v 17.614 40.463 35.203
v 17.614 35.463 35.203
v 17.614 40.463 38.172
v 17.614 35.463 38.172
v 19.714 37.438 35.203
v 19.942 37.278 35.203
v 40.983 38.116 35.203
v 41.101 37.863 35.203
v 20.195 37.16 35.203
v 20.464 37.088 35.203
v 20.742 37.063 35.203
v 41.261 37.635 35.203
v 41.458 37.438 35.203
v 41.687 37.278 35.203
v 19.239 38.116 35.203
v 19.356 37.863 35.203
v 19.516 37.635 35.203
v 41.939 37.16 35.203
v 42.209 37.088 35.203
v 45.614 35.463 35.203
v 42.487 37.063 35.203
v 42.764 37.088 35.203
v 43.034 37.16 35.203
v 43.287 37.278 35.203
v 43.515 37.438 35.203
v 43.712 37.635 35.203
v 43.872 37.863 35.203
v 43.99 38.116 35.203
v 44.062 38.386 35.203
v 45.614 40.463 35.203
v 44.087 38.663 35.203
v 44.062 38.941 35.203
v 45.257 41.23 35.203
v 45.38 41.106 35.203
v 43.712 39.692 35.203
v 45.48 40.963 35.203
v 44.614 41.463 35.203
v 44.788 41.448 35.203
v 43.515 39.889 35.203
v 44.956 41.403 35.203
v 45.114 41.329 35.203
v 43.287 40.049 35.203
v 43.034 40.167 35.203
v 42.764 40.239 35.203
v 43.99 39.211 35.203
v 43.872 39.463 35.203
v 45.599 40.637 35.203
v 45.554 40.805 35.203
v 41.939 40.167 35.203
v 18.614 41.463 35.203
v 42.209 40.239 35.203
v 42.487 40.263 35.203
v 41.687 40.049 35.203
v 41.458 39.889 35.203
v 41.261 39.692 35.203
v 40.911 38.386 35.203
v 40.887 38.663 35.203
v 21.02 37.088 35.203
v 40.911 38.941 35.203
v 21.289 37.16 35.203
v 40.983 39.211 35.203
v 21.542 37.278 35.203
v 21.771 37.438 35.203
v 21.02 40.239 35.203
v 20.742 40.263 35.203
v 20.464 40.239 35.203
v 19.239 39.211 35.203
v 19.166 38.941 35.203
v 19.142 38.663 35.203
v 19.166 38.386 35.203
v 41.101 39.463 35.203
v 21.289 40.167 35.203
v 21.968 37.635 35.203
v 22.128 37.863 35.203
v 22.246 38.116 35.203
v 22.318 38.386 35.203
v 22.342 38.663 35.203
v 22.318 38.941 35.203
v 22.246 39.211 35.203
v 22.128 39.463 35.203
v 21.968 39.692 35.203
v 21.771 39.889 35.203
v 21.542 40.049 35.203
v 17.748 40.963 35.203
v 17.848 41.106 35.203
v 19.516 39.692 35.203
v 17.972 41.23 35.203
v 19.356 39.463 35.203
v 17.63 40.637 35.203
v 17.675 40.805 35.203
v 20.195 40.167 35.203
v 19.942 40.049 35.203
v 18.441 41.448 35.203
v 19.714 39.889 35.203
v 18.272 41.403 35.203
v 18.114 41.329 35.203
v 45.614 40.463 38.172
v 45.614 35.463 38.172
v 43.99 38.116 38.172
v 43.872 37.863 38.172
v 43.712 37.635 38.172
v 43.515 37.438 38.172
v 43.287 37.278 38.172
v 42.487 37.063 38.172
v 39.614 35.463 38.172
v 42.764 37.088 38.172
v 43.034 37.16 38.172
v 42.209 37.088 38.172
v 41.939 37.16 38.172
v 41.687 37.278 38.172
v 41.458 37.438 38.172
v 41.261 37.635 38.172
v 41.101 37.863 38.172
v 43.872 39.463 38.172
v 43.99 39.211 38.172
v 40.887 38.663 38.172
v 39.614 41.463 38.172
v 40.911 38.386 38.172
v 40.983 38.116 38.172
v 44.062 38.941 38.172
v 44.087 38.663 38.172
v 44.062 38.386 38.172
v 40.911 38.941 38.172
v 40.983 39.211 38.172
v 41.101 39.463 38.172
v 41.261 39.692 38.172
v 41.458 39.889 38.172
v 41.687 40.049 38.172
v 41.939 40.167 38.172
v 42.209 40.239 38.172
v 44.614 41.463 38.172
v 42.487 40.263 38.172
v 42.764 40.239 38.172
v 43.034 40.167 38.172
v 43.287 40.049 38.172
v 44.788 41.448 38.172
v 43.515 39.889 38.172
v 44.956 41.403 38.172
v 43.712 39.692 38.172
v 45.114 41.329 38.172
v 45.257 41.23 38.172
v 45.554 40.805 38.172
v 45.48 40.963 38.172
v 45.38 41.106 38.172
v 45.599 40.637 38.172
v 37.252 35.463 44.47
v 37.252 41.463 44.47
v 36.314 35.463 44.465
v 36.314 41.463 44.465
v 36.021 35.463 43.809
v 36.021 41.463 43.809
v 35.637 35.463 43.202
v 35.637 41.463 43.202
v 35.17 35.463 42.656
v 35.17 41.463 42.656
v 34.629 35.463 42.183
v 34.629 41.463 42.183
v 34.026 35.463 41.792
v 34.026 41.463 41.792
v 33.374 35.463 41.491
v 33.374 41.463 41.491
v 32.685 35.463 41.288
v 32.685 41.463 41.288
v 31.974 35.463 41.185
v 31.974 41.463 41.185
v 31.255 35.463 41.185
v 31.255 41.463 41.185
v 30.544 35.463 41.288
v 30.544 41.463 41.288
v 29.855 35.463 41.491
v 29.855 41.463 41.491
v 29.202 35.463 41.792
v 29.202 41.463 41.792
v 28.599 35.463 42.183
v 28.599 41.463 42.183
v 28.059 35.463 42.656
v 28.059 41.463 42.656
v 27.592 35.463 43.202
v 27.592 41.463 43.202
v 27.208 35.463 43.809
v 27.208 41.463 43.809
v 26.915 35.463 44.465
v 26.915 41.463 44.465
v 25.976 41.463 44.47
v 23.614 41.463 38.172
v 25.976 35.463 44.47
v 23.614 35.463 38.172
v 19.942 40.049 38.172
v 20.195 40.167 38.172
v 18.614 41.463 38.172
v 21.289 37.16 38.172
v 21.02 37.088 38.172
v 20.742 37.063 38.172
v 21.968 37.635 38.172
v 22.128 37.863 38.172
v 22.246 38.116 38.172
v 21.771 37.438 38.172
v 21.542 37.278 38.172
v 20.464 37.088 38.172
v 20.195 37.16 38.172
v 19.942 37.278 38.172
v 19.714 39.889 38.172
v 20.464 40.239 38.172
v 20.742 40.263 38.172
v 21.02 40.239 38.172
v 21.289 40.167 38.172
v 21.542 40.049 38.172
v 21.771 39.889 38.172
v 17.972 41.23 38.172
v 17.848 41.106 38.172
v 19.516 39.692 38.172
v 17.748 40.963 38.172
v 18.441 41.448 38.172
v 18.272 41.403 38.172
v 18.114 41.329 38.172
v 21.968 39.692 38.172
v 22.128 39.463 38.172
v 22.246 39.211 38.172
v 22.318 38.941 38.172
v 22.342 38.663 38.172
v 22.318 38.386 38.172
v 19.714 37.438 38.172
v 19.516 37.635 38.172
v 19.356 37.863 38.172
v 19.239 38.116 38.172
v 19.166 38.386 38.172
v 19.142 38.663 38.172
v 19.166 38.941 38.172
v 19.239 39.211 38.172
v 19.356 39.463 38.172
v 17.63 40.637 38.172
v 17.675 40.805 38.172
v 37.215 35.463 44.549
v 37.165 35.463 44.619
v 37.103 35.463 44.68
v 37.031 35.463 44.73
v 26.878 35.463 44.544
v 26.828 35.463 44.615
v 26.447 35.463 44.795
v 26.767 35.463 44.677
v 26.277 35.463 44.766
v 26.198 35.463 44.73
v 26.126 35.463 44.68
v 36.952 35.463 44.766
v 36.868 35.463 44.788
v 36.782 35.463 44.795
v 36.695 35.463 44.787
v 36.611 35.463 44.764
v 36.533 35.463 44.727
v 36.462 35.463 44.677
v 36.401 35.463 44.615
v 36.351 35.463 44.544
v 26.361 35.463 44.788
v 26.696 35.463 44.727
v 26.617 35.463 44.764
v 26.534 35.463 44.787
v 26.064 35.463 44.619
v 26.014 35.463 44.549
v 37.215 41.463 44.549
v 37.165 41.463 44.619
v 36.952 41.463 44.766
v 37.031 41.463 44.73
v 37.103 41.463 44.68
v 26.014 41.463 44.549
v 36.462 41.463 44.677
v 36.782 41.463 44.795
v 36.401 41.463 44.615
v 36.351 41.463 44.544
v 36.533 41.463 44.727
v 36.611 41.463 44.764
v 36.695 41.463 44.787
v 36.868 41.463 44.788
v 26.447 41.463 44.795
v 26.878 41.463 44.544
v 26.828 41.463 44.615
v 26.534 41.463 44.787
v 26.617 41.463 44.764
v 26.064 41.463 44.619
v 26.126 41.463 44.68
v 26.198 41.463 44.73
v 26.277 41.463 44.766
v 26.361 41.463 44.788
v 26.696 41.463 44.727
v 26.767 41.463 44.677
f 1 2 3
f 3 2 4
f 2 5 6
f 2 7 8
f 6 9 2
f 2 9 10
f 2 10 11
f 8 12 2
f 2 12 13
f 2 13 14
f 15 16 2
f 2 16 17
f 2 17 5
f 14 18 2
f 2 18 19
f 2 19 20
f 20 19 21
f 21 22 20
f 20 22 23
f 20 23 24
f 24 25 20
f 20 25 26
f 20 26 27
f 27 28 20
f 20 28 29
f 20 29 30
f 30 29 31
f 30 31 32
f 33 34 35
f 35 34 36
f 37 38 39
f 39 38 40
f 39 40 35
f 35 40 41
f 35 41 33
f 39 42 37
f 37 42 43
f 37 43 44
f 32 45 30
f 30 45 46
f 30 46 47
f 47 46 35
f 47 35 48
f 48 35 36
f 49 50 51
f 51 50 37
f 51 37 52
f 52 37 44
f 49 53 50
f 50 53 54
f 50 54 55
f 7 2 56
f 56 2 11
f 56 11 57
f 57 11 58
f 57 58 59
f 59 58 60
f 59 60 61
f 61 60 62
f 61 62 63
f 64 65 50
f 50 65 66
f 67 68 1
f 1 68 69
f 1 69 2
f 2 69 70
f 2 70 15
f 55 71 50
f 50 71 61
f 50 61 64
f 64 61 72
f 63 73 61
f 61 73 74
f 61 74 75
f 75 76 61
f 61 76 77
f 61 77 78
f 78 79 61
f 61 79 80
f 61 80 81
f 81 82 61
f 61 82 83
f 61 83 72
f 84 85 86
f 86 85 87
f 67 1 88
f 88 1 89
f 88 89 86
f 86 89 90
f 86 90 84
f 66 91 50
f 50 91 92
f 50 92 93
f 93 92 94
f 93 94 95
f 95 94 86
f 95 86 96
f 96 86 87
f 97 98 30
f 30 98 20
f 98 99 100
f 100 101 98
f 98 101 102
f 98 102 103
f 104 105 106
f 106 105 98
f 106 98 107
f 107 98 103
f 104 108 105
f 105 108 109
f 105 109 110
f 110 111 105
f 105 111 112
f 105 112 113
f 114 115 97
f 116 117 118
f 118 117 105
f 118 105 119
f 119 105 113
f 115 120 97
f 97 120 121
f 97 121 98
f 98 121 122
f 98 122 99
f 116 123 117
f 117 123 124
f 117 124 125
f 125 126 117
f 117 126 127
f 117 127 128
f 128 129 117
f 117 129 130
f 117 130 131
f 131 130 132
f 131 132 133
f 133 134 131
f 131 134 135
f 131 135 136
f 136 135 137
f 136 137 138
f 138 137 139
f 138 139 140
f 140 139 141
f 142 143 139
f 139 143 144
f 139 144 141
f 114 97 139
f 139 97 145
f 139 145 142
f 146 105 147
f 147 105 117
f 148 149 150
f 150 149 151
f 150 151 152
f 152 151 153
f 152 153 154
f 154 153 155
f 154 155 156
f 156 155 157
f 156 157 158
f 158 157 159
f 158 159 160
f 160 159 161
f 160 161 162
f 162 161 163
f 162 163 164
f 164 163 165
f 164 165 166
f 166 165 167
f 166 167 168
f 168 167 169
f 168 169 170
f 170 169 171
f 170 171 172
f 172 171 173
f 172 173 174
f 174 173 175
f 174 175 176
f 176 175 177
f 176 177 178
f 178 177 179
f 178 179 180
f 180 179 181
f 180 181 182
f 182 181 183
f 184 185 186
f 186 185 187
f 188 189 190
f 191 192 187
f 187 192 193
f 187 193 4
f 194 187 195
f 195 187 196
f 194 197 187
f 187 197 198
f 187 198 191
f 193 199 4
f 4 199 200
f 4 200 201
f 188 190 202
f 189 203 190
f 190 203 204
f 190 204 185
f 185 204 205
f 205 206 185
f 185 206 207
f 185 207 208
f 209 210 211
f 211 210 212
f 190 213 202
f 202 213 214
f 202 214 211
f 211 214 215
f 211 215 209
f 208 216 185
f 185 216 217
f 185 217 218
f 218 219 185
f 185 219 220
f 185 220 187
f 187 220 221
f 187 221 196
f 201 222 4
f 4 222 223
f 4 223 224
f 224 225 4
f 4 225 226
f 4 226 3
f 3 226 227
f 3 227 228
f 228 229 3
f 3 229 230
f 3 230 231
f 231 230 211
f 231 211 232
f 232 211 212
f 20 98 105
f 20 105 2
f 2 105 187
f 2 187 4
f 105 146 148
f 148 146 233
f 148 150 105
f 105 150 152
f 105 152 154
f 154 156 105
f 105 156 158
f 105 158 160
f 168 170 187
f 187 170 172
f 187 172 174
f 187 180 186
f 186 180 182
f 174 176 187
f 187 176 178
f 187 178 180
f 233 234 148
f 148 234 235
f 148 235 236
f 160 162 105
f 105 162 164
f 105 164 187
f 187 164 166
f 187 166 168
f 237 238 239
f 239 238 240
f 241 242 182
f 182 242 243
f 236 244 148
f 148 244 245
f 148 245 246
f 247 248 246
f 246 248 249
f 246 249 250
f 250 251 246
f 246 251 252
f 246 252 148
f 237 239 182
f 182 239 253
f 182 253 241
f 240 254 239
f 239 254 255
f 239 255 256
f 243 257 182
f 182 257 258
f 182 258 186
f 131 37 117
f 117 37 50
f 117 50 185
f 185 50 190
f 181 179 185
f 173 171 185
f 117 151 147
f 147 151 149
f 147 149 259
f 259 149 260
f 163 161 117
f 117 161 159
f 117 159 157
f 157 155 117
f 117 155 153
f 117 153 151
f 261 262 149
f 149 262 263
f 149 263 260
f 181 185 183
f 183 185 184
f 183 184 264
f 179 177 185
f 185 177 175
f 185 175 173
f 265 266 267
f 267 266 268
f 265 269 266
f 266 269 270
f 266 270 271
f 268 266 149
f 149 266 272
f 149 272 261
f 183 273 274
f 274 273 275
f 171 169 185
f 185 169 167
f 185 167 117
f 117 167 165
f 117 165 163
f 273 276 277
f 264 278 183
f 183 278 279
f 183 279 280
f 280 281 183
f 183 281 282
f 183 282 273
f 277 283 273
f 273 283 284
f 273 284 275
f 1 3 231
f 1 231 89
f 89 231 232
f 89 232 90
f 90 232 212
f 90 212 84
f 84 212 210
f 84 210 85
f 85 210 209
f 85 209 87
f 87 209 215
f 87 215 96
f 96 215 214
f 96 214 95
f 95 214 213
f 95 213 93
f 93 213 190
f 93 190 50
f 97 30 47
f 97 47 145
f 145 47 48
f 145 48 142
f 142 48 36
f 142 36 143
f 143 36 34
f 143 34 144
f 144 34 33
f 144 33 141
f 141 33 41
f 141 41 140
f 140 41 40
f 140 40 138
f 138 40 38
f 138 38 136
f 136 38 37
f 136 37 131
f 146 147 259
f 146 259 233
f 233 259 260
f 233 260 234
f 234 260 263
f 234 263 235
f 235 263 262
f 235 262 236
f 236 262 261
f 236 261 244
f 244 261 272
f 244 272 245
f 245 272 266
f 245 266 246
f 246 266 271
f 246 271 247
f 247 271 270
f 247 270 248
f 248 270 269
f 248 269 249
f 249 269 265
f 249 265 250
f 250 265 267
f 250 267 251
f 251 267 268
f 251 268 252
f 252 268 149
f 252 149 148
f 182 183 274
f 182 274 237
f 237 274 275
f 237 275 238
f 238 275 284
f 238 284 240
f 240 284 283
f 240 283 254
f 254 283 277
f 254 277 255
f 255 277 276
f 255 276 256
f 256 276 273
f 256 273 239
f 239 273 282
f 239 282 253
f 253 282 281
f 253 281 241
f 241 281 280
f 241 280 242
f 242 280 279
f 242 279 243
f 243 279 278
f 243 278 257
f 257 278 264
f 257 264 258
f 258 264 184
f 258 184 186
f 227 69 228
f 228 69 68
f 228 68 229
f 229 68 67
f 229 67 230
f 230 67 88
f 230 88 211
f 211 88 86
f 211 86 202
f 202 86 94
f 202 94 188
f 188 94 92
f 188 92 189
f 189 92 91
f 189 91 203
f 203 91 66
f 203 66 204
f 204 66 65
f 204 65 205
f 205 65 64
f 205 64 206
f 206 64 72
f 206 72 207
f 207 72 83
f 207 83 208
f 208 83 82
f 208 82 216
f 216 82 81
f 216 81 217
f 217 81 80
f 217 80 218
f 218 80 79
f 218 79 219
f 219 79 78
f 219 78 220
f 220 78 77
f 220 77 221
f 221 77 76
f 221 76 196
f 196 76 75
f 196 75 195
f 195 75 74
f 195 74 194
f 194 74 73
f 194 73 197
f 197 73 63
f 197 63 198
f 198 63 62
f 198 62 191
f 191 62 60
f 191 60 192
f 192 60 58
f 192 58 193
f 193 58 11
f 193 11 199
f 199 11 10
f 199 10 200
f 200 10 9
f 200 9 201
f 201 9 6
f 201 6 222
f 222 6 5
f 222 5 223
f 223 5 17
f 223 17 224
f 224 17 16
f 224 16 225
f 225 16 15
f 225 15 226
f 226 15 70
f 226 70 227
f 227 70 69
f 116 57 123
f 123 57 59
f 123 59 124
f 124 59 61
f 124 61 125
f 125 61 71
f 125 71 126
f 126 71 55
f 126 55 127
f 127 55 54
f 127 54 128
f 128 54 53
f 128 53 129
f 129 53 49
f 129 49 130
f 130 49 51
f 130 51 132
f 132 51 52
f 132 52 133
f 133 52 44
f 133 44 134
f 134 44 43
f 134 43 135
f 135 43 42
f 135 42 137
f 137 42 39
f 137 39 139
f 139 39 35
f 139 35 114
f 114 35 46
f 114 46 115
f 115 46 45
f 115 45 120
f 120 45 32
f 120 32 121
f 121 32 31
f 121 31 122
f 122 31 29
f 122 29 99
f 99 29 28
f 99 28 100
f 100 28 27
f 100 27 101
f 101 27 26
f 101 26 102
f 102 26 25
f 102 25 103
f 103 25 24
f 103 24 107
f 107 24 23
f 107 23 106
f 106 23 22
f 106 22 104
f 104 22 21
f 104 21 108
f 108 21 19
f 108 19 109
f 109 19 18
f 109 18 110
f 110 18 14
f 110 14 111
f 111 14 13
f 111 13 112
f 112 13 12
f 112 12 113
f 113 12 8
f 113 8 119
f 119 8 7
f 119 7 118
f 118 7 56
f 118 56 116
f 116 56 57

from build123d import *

# Parameters (mm, degrees)
BOSS_EXTRUDE1_DEPTH = 6
FILLET1_R           = 1
FILLET2_R           = 0.5
SKETCH2_R           = 1.6
CUT_EXTRUDE2_DEPTH  = 10


with BuildPart() as part:
    # Sketch1 → Boss-Extrude1 (new body)
    with BuildSketch(Plane(origin=(0, 41.463460463, 0), x_dir=(1, 0, 0), z_dir=(0, 1, 0))):
        with BuildLine():
            Line((26.614370899, -46.171636097), (23.614370899, -38.171636097))
            Line((23.614370899, -38.171636097), (17.614370899, -38.171636097))
            Line((17.614370899, -38.171636097), (17.614370899, -35.202564725))
            Line((17.614370899, -35.202564725), (45.614370899, -35.202564725))
            Line((45.614370899, -35.202564725), (45.614370899, -38.171636097))
            Line((45.614370899, -38.171636097), (39.614370899, -38.171636097))
            Line((39.614370899, -38.171636097), (36.614370899, -46.171636097))
            ThreePointArc((36.614370899, -46.171636097), (31.614370899, -41.171636097), (26.614370899, -46.171636097))
        make_face()
    extrude(amount=-BOSS_EXTRUDE1_DEPTH)

    # Fillet1
    fillet1_edges = [part.edges().sort_by_distance(p)[0] for p in [
        (17.614370899, 41.463460463, 36.687100411),
        (45.614370899, 41.463460463, 36.687100411),
    ]]
    fillet(fillet1_edges, radius=FILLET1_R)

    # Fillet2
    fillet2_edges = [part.edges().sort_by_distance(p)[0] for p in [
        (36.614370899, 38.463460463, 46.171636097),
        (26.614370899, 38.463460463, 46.171636097),
    ]]
    fillet(fillet2_edges, radius=FILLET2_R)

    # Sketch2 → Cut-Extrude2 (cut)
    with BuildSketch(Plane(origin=(0, 0, 35.202564725), x_dir=(-1, 0, 0), z_dir=(0, 0, -1))):
        with Locations((-20.74213752, 38.663460463)):
            Circle(SKETCH2_R)
        with Locations((-42.486604277, 38.663460463)):
            Circle(SKETCH2_R)
    extrude(amount=-CUT_EXTRUDE2_DEPTH, mode=Mode.SUBTRACT)


solid = part.part
